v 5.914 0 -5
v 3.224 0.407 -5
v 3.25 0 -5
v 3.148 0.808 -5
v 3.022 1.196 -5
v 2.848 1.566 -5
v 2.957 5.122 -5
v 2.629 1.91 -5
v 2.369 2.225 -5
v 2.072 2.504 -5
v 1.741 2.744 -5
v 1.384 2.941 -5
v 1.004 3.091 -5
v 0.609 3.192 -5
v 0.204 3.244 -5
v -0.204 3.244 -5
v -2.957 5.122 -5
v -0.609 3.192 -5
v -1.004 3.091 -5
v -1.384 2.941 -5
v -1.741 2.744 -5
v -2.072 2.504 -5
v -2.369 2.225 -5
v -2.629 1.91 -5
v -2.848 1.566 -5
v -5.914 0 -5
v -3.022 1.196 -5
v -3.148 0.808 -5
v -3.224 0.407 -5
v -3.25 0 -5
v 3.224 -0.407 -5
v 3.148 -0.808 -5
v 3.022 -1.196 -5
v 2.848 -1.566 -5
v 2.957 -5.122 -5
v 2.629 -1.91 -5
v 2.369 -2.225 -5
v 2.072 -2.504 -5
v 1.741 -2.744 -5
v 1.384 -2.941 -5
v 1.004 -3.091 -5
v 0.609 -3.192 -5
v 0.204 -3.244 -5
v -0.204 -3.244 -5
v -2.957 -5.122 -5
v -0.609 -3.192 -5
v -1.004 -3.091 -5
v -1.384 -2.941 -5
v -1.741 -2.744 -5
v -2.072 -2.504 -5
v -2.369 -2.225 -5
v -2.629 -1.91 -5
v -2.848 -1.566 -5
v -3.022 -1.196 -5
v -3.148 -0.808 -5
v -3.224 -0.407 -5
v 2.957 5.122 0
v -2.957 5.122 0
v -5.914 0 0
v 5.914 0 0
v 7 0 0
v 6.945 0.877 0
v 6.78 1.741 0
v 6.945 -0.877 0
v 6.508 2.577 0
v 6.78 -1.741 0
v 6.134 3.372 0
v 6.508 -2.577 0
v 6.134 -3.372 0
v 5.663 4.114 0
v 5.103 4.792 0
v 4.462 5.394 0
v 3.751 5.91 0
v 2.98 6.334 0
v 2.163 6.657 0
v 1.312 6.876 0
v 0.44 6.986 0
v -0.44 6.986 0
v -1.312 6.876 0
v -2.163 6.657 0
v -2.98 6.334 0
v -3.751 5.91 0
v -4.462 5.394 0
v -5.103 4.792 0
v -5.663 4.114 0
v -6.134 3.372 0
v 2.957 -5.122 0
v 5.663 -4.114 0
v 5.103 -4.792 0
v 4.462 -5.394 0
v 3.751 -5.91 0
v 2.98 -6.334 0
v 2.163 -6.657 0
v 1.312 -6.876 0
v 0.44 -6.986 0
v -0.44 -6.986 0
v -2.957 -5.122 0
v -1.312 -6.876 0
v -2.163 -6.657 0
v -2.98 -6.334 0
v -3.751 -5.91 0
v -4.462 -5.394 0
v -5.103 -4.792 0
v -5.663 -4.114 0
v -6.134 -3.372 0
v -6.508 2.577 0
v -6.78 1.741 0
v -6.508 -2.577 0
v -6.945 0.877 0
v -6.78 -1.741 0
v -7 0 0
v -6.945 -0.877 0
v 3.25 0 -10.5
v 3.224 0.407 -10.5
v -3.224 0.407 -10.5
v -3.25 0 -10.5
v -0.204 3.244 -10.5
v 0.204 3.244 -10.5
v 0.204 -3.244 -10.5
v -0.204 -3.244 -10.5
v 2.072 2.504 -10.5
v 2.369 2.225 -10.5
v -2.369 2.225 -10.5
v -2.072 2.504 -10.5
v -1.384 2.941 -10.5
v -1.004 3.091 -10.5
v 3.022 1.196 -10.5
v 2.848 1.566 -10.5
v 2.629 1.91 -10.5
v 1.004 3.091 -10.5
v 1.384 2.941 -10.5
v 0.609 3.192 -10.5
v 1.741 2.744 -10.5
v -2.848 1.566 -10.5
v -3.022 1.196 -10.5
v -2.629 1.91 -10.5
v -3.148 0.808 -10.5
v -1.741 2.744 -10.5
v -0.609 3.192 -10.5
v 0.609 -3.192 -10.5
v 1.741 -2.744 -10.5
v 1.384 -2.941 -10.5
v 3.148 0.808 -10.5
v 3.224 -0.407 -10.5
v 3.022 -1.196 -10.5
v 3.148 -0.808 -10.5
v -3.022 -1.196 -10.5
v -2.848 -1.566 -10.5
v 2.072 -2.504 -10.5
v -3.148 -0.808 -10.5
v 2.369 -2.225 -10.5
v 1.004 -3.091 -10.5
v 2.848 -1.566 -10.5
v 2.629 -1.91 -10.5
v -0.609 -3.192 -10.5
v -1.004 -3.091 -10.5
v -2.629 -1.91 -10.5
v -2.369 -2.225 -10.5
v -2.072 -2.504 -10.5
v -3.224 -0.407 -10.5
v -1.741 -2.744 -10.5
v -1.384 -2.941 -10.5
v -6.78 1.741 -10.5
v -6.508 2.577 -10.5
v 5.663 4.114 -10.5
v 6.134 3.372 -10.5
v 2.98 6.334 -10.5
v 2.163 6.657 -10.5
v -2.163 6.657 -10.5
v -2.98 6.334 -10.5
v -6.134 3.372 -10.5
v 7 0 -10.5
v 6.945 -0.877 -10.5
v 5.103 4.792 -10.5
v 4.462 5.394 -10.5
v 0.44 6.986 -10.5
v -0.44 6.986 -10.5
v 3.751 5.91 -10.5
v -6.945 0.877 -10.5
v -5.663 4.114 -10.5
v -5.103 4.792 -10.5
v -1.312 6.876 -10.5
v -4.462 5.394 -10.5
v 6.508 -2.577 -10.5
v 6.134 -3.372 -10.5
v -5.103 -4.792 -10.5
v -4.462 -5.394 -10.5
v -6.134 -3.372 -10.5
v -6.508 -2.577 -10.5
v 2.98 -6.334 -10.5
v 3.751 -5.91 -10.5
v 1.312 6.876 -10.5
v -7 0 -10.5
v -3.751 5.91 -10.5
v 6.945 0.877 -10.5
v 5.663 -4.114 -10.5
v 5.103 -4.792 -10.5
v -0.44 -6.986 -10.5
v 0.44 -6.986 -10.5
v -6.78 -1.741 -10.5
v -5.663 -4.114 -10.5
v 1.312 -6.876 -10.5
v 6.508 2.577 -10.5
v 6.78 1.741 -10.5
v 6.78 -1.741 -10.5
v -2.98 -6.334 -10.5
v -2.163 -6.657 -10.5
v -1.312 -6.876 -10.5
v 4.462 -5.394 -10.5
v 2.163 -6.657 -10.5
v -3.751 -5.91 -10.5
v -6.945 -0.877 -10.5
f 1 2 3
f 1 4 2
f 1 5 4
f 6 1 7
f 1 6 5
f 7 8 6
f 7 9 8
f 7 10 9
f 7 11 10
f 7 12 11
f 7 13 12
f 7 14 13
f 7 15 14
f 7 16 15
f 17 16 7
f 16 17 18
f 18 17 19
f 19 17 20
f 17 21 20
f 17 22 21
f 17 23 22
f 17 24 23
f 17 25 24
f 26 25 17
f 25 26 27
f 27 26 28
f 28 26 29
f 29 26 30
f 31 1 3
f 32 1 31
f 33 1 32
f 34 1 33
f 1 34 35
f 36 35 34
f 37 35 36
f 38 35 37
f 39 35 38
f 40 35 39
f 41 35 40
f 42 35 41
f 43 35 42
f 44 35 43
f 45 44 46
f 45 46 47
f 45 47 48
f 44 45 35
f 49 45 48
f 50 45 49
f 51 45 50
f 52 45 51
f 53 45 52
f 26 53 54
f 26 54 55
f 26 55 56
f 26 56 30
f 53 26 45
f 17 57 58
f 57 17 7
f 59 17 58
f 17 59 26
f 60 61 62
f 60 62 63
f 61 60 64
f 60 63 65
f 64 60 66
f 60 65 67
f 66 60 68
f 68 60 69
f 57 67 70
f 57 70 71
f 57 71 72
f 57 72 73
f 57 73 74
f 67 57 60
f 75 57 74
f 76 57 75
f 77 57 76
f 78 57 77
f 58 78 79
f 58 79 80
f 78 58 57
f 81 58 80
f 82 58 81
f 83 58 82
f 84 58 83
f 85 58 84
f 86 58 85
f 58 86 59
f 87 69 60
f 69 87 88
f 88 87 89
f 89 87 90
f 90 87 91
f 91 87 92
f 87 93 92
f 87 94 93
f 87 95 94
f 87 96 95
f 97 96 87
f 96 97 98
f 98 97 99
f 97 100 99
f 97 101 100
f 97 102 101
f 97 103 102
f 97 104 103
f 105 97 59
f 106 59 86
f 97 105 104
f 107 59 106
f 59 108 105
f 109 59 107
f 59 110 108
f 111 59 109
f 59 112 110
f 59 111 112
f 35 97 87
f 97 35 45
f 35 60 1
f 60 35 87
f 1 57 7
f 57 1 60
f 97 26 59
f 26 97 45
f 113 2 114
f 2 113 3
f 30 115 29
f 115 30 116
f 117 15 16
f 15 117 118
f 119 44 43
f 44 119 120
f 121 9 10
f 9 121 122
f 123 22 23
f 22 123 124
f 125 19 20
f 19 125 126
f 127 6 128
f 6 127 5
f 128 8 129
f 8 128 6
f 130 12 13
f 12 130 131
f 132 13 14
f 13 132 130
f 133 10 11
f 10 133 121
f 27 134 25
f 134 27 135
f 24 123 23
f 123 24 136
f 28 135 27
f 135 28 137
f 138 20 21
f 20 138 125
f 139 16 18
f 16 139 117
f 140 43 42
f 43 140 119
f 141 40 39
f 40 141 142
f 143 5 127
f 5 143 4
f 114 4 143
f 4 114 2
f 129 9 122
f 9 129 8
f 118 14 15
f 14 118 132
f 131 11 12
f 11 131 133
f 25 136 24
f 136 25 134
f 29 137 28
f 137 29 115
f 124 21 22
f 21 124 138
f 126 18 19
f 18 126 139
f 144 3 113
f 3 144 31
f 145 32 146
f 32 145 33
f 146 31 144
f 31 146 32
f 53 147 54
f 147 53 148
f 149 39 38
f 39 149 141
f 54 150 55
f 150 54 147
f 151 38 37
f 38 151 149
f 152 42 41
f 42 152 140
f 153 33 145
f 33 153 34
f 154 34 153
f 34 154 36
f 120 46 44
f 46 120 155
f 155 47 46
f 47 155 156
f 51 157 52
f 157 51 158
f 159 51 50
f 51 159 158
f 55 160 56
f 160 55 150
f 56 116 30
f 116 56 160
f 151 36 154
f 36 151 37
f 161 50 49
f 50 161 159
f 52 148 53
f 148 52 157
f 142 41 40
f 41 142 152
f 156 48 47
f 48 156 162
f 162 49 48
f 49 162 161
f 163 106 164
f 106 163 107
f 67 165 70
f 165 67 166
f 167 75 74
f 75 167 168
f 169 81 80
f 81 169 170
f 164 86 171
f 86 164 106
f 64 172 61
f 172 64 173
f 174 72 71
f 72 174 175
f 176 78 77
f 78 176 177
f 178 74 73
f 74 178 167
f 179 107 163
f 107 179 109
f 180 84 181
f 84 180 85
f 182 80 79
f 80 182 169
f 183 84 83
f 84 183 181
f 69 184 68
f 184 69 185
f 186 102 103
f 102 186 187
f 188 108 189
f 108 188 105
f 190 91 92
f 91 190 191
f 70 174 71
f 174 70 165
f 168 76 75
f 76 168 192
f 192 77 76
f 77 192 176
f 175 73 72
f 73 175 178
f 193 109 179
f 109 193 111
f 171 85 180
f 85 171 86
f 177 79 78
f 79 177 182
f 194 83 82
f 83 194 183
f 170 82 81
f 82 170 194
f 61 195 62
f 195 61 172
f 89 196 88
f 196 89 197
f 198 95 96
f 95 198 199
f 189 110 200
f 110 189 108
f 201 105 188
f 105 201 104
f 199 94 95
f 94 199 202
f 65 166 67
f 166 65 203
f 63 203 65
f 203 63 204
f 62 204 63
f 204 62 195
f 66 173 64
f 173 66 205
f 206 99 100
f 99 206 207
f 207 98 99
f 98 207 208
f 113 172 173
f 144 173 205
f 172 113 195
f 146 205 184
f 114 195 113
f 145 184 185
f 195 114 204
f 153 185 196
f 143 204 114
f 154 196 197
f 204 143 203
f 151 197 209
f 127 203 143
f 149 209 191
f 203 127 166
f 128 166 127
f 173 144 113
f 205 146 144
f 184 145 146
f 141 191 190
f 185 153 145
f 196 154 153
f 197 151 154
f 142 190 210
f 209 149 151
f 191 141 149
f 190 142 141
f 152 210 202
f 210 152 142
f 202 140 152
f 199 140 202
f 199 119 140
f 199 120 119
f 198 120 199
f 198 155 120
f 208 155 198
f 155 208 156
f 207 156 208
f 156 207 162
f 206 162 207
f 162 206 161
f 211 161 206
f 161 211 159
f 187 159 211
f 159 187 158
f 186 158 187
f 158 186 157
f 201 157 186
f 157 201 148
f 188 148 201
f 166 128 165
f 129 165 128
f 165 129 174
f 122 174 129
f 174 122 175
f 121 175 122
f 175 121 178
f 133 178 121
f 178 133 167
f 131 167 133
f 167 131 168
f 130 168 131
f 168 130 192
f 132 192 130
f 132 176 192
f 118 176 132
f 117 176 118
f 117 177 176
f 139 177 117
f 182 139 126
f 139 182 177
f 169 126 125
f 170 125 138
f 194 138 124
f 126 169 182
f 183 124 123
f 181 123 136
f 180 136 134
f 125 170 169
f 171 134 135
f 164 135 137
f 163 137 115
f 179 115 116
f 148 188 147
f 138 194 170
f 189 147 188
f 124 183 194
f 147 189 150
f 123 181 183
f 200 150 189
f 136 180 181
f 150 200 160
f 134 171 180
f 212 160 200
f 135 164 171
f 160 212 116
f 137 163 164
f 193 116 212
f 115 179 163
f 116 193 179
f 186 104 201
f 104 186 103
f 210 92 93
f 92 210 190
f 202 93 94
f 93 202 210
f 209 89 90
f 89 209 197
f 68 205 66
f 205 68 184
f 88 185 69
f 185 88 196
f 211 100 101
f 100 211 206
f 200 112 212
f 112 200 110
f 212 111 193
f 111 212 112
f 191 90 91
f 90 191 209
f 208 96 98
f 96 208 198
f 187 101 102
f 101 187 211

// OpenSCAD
$fn = 50;


difference() {
	union() {
		translate(v = [0, 0, -10.5000000000]) {
			cylinder(h = 10.5000000000, r = 7.0000000000);
		}
	}
	union() {
		translate(v = [0, 0, 0]) {
			rotate(a = [0, 0, 0]) {
				difference() {
					union() {
						translate(v = [0, 0, -5]) {
							#linear_extrude(height = 5) {
								polygon(points = [[5.9142500000, 0.0000000000], [2.9571250000, 5.1218907443], [-2.9571250000, 5.1218907443], [-5.9142500000, 0.0000000000], [-2.9571250000, -5.1218907443], [2.9571250000, -5.1218907443]]);
							}
						}
					}
					union();
				}
			}
		}
		#translate(v = [0, 0, -100.0000000000]) {
			cylinder(h = 200, r = 3.2500000000);
		}
	}
}
